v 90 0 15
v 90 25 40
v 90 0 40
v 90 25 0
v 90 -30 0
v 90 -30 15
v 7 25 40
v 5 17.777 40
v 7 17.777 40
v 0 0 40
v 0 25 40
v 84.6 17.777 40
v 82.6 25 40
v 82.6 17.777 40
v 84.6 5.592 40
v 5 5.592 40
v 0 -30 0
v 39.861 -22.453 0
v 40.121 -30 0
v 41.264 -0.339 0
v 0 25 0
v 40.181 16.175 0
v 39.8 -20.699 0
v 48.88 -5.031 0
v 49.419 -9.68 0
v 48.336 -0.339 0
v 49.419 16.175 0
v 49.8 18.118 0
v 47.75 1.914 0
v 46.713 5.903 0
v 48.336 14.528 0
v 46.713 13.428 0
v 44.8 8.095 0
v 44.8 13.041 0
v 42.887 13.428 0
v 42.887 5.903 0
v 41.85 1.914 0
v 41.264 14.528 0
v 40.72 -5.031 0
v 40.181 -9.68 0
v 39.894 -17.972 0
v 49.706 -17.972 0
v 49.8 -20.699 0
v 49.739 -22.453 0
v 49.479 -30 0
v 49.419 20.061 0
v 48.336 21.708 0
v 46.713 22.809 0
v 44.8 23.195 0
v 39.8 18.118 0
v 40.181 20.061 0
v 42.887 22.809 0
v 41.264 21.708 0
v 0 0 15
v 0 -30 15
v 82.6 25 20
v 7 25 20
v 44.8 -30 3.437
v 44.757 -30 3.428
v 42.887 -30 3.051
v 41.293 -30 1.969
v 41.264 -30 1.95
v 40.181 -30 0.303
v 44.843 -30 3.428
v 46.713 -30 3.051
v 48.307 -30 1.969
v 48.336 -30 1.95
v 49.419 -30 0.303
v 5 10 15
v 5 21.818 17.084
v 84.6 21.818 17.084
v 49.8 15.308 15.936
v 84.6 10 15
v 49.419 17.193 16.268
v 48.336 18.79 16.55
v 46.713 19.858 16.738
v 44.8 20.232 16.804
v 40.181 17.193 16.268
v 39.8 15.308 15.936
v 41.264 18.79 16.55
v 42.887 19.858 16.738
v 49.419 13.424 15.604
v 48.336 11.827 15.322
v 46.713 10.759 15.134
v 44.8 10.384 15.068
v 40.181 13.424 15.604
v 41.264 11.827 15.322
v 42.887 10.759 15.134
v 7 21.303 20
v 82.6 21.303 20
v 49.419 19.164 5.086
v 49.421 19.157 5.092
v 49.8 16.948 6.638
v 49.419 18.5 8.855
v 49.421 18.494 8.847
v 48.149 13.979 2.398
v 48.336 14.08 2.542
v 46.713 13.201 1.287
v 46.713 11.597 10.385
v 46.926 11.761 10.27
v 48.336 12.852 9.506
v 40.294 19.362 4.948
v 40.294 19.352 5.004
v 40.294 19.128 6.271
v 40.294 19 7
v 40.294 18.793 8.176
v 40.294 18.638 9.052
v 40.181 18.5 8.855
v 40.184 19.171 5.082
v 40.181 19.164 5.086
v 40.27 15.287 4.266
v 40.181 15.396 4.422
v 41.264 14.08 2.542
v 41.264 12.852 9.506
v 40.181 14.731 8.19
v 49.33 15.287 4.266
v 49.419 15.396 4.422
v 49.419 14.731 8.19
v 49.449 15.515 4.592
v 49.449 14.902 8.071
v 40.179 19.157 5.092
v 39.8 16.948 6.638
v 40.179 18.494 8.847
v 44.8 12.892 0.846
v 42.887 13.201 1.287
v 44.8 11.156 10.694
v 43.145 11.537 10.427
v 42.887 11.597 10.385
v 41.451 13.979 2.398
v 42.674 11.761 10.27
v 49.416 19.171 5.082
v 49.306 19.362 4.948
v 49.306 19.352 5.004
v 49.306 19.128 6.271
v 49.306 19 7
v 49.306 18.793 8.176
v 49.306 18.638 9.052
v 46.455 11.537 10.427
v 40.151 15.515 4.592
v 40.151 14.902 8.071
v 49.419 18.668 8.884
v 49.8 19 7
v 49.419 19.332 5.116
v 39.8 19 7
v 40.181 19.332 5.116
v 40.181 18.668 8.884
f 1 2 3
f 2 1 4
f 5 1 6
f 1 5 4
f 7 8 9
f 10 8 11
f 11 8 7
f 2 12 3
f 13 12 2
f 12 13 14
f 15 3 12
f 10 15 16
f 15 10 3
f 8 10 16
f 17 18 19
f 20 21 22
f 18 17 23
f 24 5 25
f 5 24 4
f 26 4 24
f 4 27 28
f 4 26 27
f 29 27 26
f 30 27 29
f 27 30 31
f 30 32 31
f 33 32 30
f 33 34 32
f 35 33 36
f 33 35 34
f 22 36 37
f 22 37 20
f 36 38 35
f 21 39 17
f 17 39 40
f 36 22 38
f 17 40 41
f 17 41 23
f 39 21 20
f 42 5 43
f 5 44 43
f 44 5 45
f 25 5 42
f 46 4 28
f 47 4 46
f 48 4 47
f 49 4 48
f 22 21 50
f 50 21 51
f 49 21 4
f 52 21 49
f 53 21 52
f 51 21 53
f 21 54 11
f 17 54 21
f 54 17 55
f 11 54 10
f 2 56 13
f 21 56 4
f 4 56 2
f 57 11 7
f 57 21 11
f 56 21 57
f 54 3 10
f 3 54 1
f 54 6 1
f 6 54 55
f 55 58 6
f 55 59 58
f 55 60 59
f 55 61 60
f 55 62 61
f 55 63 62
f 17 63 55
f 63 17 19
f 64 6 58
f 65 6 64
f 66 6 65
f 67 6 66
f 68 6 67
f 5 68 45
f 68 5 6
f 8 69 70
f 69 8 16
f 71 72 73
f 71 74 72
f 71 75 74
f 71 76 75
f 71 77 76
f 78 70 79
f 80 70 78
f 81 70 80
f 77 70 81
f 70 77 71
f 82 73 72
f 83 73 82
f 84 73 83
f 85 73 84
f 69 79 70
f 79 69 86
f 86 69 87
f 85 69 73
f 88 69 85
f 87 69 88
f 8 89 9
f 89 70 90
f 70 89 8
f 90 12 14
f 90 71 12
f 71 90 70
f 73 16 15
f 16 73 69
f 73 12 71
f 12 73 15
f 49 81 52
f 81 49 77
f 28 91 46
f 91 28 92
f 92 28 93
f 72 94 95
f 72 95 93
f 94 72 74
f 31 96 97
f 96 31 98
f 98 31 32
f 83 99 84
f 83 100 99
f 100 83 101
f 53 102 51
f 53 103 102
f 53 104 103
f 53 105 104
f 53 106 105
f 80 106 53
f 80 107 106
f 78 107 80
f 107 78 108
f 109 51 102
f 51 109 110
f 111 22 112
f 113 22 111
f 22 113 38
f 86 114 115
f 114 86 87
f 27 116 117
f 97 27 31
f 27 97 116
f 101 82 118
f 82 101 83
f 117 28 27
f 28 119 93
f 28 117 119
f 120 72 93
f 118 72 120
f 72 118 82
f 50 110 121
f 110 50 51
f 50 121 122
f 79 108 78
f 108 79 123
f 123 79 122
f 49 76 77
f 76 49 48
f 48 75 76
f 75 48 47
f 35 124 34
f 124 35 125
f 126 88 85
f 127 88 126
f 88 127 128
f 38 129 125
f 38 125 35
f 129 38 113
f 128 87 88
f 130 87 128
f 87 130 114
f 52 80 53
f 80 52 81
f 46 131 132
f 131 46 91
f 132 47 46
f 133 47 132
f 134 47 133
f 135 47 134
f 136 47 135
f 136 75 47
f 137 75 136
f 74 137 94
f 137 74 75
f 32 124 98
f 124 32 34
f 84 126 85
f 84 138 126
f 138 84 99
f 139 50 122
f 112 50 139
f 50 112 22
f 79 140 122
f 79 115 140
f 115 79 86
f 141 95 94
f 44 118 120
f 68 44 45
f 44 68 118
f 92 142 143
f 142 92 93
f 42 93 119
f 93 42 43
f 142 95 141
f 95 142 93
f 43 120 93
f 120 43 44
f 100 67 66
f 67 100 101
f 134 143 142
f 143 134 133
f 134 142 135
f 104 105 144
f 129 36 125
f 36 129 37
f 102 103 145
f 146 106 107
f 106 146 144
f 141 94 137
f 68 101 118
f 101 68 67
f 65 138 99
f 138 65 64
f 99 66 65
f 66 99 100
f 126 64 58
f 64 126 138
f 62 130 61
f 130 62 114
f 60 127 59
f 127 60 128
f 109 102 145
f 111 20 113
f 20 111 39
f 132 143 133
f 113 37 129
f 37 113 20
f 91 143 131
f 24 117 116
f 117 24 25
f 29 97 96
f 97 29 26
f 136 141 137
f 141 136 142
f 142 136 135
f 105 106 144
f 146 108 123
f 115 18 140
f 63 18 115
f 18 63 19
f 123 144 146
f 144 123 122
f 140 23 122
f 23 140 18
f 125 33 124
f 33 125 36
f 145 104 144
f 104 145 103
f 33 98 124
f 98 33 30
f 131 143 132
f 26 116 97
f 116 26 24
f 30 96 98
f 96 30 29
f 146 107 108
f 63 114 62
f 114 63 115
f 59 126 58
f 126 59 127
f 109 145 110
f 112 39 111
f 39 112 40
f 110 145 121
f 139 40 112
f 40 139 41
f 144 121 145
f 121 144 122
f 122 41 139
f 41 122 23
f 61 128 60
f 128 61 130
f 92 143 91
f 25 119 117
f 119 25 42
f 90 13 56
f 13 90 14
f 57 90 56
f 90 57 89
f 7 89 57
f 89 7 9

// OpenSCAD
height = 166;
width = 79.6;
thickness = 12;

// loading cable in the middle of both directions
difference() {
  union() {
    cube([90, 25, 40]);
    translate([0, -30, 0]) cube([90, 40, 15]);
  }
  
  translate([5, 10, 15])
  rotate([10, 0, 0])
  cube([width, thickness, height]);

  translate([(width + 10) / 2, 19, -5])
  rotate([10, 0, 0])
  translate([0,0,-20])
  cylinder(d = 10, h = 80);


  translate([(width + 10) / 2, 19, 7])
  rotate([100, 0, 0])
  cylinder(d = 10, h = 50);

  translate([7, 15, 20])
  cube([width - 4, thickness, height]);
}
